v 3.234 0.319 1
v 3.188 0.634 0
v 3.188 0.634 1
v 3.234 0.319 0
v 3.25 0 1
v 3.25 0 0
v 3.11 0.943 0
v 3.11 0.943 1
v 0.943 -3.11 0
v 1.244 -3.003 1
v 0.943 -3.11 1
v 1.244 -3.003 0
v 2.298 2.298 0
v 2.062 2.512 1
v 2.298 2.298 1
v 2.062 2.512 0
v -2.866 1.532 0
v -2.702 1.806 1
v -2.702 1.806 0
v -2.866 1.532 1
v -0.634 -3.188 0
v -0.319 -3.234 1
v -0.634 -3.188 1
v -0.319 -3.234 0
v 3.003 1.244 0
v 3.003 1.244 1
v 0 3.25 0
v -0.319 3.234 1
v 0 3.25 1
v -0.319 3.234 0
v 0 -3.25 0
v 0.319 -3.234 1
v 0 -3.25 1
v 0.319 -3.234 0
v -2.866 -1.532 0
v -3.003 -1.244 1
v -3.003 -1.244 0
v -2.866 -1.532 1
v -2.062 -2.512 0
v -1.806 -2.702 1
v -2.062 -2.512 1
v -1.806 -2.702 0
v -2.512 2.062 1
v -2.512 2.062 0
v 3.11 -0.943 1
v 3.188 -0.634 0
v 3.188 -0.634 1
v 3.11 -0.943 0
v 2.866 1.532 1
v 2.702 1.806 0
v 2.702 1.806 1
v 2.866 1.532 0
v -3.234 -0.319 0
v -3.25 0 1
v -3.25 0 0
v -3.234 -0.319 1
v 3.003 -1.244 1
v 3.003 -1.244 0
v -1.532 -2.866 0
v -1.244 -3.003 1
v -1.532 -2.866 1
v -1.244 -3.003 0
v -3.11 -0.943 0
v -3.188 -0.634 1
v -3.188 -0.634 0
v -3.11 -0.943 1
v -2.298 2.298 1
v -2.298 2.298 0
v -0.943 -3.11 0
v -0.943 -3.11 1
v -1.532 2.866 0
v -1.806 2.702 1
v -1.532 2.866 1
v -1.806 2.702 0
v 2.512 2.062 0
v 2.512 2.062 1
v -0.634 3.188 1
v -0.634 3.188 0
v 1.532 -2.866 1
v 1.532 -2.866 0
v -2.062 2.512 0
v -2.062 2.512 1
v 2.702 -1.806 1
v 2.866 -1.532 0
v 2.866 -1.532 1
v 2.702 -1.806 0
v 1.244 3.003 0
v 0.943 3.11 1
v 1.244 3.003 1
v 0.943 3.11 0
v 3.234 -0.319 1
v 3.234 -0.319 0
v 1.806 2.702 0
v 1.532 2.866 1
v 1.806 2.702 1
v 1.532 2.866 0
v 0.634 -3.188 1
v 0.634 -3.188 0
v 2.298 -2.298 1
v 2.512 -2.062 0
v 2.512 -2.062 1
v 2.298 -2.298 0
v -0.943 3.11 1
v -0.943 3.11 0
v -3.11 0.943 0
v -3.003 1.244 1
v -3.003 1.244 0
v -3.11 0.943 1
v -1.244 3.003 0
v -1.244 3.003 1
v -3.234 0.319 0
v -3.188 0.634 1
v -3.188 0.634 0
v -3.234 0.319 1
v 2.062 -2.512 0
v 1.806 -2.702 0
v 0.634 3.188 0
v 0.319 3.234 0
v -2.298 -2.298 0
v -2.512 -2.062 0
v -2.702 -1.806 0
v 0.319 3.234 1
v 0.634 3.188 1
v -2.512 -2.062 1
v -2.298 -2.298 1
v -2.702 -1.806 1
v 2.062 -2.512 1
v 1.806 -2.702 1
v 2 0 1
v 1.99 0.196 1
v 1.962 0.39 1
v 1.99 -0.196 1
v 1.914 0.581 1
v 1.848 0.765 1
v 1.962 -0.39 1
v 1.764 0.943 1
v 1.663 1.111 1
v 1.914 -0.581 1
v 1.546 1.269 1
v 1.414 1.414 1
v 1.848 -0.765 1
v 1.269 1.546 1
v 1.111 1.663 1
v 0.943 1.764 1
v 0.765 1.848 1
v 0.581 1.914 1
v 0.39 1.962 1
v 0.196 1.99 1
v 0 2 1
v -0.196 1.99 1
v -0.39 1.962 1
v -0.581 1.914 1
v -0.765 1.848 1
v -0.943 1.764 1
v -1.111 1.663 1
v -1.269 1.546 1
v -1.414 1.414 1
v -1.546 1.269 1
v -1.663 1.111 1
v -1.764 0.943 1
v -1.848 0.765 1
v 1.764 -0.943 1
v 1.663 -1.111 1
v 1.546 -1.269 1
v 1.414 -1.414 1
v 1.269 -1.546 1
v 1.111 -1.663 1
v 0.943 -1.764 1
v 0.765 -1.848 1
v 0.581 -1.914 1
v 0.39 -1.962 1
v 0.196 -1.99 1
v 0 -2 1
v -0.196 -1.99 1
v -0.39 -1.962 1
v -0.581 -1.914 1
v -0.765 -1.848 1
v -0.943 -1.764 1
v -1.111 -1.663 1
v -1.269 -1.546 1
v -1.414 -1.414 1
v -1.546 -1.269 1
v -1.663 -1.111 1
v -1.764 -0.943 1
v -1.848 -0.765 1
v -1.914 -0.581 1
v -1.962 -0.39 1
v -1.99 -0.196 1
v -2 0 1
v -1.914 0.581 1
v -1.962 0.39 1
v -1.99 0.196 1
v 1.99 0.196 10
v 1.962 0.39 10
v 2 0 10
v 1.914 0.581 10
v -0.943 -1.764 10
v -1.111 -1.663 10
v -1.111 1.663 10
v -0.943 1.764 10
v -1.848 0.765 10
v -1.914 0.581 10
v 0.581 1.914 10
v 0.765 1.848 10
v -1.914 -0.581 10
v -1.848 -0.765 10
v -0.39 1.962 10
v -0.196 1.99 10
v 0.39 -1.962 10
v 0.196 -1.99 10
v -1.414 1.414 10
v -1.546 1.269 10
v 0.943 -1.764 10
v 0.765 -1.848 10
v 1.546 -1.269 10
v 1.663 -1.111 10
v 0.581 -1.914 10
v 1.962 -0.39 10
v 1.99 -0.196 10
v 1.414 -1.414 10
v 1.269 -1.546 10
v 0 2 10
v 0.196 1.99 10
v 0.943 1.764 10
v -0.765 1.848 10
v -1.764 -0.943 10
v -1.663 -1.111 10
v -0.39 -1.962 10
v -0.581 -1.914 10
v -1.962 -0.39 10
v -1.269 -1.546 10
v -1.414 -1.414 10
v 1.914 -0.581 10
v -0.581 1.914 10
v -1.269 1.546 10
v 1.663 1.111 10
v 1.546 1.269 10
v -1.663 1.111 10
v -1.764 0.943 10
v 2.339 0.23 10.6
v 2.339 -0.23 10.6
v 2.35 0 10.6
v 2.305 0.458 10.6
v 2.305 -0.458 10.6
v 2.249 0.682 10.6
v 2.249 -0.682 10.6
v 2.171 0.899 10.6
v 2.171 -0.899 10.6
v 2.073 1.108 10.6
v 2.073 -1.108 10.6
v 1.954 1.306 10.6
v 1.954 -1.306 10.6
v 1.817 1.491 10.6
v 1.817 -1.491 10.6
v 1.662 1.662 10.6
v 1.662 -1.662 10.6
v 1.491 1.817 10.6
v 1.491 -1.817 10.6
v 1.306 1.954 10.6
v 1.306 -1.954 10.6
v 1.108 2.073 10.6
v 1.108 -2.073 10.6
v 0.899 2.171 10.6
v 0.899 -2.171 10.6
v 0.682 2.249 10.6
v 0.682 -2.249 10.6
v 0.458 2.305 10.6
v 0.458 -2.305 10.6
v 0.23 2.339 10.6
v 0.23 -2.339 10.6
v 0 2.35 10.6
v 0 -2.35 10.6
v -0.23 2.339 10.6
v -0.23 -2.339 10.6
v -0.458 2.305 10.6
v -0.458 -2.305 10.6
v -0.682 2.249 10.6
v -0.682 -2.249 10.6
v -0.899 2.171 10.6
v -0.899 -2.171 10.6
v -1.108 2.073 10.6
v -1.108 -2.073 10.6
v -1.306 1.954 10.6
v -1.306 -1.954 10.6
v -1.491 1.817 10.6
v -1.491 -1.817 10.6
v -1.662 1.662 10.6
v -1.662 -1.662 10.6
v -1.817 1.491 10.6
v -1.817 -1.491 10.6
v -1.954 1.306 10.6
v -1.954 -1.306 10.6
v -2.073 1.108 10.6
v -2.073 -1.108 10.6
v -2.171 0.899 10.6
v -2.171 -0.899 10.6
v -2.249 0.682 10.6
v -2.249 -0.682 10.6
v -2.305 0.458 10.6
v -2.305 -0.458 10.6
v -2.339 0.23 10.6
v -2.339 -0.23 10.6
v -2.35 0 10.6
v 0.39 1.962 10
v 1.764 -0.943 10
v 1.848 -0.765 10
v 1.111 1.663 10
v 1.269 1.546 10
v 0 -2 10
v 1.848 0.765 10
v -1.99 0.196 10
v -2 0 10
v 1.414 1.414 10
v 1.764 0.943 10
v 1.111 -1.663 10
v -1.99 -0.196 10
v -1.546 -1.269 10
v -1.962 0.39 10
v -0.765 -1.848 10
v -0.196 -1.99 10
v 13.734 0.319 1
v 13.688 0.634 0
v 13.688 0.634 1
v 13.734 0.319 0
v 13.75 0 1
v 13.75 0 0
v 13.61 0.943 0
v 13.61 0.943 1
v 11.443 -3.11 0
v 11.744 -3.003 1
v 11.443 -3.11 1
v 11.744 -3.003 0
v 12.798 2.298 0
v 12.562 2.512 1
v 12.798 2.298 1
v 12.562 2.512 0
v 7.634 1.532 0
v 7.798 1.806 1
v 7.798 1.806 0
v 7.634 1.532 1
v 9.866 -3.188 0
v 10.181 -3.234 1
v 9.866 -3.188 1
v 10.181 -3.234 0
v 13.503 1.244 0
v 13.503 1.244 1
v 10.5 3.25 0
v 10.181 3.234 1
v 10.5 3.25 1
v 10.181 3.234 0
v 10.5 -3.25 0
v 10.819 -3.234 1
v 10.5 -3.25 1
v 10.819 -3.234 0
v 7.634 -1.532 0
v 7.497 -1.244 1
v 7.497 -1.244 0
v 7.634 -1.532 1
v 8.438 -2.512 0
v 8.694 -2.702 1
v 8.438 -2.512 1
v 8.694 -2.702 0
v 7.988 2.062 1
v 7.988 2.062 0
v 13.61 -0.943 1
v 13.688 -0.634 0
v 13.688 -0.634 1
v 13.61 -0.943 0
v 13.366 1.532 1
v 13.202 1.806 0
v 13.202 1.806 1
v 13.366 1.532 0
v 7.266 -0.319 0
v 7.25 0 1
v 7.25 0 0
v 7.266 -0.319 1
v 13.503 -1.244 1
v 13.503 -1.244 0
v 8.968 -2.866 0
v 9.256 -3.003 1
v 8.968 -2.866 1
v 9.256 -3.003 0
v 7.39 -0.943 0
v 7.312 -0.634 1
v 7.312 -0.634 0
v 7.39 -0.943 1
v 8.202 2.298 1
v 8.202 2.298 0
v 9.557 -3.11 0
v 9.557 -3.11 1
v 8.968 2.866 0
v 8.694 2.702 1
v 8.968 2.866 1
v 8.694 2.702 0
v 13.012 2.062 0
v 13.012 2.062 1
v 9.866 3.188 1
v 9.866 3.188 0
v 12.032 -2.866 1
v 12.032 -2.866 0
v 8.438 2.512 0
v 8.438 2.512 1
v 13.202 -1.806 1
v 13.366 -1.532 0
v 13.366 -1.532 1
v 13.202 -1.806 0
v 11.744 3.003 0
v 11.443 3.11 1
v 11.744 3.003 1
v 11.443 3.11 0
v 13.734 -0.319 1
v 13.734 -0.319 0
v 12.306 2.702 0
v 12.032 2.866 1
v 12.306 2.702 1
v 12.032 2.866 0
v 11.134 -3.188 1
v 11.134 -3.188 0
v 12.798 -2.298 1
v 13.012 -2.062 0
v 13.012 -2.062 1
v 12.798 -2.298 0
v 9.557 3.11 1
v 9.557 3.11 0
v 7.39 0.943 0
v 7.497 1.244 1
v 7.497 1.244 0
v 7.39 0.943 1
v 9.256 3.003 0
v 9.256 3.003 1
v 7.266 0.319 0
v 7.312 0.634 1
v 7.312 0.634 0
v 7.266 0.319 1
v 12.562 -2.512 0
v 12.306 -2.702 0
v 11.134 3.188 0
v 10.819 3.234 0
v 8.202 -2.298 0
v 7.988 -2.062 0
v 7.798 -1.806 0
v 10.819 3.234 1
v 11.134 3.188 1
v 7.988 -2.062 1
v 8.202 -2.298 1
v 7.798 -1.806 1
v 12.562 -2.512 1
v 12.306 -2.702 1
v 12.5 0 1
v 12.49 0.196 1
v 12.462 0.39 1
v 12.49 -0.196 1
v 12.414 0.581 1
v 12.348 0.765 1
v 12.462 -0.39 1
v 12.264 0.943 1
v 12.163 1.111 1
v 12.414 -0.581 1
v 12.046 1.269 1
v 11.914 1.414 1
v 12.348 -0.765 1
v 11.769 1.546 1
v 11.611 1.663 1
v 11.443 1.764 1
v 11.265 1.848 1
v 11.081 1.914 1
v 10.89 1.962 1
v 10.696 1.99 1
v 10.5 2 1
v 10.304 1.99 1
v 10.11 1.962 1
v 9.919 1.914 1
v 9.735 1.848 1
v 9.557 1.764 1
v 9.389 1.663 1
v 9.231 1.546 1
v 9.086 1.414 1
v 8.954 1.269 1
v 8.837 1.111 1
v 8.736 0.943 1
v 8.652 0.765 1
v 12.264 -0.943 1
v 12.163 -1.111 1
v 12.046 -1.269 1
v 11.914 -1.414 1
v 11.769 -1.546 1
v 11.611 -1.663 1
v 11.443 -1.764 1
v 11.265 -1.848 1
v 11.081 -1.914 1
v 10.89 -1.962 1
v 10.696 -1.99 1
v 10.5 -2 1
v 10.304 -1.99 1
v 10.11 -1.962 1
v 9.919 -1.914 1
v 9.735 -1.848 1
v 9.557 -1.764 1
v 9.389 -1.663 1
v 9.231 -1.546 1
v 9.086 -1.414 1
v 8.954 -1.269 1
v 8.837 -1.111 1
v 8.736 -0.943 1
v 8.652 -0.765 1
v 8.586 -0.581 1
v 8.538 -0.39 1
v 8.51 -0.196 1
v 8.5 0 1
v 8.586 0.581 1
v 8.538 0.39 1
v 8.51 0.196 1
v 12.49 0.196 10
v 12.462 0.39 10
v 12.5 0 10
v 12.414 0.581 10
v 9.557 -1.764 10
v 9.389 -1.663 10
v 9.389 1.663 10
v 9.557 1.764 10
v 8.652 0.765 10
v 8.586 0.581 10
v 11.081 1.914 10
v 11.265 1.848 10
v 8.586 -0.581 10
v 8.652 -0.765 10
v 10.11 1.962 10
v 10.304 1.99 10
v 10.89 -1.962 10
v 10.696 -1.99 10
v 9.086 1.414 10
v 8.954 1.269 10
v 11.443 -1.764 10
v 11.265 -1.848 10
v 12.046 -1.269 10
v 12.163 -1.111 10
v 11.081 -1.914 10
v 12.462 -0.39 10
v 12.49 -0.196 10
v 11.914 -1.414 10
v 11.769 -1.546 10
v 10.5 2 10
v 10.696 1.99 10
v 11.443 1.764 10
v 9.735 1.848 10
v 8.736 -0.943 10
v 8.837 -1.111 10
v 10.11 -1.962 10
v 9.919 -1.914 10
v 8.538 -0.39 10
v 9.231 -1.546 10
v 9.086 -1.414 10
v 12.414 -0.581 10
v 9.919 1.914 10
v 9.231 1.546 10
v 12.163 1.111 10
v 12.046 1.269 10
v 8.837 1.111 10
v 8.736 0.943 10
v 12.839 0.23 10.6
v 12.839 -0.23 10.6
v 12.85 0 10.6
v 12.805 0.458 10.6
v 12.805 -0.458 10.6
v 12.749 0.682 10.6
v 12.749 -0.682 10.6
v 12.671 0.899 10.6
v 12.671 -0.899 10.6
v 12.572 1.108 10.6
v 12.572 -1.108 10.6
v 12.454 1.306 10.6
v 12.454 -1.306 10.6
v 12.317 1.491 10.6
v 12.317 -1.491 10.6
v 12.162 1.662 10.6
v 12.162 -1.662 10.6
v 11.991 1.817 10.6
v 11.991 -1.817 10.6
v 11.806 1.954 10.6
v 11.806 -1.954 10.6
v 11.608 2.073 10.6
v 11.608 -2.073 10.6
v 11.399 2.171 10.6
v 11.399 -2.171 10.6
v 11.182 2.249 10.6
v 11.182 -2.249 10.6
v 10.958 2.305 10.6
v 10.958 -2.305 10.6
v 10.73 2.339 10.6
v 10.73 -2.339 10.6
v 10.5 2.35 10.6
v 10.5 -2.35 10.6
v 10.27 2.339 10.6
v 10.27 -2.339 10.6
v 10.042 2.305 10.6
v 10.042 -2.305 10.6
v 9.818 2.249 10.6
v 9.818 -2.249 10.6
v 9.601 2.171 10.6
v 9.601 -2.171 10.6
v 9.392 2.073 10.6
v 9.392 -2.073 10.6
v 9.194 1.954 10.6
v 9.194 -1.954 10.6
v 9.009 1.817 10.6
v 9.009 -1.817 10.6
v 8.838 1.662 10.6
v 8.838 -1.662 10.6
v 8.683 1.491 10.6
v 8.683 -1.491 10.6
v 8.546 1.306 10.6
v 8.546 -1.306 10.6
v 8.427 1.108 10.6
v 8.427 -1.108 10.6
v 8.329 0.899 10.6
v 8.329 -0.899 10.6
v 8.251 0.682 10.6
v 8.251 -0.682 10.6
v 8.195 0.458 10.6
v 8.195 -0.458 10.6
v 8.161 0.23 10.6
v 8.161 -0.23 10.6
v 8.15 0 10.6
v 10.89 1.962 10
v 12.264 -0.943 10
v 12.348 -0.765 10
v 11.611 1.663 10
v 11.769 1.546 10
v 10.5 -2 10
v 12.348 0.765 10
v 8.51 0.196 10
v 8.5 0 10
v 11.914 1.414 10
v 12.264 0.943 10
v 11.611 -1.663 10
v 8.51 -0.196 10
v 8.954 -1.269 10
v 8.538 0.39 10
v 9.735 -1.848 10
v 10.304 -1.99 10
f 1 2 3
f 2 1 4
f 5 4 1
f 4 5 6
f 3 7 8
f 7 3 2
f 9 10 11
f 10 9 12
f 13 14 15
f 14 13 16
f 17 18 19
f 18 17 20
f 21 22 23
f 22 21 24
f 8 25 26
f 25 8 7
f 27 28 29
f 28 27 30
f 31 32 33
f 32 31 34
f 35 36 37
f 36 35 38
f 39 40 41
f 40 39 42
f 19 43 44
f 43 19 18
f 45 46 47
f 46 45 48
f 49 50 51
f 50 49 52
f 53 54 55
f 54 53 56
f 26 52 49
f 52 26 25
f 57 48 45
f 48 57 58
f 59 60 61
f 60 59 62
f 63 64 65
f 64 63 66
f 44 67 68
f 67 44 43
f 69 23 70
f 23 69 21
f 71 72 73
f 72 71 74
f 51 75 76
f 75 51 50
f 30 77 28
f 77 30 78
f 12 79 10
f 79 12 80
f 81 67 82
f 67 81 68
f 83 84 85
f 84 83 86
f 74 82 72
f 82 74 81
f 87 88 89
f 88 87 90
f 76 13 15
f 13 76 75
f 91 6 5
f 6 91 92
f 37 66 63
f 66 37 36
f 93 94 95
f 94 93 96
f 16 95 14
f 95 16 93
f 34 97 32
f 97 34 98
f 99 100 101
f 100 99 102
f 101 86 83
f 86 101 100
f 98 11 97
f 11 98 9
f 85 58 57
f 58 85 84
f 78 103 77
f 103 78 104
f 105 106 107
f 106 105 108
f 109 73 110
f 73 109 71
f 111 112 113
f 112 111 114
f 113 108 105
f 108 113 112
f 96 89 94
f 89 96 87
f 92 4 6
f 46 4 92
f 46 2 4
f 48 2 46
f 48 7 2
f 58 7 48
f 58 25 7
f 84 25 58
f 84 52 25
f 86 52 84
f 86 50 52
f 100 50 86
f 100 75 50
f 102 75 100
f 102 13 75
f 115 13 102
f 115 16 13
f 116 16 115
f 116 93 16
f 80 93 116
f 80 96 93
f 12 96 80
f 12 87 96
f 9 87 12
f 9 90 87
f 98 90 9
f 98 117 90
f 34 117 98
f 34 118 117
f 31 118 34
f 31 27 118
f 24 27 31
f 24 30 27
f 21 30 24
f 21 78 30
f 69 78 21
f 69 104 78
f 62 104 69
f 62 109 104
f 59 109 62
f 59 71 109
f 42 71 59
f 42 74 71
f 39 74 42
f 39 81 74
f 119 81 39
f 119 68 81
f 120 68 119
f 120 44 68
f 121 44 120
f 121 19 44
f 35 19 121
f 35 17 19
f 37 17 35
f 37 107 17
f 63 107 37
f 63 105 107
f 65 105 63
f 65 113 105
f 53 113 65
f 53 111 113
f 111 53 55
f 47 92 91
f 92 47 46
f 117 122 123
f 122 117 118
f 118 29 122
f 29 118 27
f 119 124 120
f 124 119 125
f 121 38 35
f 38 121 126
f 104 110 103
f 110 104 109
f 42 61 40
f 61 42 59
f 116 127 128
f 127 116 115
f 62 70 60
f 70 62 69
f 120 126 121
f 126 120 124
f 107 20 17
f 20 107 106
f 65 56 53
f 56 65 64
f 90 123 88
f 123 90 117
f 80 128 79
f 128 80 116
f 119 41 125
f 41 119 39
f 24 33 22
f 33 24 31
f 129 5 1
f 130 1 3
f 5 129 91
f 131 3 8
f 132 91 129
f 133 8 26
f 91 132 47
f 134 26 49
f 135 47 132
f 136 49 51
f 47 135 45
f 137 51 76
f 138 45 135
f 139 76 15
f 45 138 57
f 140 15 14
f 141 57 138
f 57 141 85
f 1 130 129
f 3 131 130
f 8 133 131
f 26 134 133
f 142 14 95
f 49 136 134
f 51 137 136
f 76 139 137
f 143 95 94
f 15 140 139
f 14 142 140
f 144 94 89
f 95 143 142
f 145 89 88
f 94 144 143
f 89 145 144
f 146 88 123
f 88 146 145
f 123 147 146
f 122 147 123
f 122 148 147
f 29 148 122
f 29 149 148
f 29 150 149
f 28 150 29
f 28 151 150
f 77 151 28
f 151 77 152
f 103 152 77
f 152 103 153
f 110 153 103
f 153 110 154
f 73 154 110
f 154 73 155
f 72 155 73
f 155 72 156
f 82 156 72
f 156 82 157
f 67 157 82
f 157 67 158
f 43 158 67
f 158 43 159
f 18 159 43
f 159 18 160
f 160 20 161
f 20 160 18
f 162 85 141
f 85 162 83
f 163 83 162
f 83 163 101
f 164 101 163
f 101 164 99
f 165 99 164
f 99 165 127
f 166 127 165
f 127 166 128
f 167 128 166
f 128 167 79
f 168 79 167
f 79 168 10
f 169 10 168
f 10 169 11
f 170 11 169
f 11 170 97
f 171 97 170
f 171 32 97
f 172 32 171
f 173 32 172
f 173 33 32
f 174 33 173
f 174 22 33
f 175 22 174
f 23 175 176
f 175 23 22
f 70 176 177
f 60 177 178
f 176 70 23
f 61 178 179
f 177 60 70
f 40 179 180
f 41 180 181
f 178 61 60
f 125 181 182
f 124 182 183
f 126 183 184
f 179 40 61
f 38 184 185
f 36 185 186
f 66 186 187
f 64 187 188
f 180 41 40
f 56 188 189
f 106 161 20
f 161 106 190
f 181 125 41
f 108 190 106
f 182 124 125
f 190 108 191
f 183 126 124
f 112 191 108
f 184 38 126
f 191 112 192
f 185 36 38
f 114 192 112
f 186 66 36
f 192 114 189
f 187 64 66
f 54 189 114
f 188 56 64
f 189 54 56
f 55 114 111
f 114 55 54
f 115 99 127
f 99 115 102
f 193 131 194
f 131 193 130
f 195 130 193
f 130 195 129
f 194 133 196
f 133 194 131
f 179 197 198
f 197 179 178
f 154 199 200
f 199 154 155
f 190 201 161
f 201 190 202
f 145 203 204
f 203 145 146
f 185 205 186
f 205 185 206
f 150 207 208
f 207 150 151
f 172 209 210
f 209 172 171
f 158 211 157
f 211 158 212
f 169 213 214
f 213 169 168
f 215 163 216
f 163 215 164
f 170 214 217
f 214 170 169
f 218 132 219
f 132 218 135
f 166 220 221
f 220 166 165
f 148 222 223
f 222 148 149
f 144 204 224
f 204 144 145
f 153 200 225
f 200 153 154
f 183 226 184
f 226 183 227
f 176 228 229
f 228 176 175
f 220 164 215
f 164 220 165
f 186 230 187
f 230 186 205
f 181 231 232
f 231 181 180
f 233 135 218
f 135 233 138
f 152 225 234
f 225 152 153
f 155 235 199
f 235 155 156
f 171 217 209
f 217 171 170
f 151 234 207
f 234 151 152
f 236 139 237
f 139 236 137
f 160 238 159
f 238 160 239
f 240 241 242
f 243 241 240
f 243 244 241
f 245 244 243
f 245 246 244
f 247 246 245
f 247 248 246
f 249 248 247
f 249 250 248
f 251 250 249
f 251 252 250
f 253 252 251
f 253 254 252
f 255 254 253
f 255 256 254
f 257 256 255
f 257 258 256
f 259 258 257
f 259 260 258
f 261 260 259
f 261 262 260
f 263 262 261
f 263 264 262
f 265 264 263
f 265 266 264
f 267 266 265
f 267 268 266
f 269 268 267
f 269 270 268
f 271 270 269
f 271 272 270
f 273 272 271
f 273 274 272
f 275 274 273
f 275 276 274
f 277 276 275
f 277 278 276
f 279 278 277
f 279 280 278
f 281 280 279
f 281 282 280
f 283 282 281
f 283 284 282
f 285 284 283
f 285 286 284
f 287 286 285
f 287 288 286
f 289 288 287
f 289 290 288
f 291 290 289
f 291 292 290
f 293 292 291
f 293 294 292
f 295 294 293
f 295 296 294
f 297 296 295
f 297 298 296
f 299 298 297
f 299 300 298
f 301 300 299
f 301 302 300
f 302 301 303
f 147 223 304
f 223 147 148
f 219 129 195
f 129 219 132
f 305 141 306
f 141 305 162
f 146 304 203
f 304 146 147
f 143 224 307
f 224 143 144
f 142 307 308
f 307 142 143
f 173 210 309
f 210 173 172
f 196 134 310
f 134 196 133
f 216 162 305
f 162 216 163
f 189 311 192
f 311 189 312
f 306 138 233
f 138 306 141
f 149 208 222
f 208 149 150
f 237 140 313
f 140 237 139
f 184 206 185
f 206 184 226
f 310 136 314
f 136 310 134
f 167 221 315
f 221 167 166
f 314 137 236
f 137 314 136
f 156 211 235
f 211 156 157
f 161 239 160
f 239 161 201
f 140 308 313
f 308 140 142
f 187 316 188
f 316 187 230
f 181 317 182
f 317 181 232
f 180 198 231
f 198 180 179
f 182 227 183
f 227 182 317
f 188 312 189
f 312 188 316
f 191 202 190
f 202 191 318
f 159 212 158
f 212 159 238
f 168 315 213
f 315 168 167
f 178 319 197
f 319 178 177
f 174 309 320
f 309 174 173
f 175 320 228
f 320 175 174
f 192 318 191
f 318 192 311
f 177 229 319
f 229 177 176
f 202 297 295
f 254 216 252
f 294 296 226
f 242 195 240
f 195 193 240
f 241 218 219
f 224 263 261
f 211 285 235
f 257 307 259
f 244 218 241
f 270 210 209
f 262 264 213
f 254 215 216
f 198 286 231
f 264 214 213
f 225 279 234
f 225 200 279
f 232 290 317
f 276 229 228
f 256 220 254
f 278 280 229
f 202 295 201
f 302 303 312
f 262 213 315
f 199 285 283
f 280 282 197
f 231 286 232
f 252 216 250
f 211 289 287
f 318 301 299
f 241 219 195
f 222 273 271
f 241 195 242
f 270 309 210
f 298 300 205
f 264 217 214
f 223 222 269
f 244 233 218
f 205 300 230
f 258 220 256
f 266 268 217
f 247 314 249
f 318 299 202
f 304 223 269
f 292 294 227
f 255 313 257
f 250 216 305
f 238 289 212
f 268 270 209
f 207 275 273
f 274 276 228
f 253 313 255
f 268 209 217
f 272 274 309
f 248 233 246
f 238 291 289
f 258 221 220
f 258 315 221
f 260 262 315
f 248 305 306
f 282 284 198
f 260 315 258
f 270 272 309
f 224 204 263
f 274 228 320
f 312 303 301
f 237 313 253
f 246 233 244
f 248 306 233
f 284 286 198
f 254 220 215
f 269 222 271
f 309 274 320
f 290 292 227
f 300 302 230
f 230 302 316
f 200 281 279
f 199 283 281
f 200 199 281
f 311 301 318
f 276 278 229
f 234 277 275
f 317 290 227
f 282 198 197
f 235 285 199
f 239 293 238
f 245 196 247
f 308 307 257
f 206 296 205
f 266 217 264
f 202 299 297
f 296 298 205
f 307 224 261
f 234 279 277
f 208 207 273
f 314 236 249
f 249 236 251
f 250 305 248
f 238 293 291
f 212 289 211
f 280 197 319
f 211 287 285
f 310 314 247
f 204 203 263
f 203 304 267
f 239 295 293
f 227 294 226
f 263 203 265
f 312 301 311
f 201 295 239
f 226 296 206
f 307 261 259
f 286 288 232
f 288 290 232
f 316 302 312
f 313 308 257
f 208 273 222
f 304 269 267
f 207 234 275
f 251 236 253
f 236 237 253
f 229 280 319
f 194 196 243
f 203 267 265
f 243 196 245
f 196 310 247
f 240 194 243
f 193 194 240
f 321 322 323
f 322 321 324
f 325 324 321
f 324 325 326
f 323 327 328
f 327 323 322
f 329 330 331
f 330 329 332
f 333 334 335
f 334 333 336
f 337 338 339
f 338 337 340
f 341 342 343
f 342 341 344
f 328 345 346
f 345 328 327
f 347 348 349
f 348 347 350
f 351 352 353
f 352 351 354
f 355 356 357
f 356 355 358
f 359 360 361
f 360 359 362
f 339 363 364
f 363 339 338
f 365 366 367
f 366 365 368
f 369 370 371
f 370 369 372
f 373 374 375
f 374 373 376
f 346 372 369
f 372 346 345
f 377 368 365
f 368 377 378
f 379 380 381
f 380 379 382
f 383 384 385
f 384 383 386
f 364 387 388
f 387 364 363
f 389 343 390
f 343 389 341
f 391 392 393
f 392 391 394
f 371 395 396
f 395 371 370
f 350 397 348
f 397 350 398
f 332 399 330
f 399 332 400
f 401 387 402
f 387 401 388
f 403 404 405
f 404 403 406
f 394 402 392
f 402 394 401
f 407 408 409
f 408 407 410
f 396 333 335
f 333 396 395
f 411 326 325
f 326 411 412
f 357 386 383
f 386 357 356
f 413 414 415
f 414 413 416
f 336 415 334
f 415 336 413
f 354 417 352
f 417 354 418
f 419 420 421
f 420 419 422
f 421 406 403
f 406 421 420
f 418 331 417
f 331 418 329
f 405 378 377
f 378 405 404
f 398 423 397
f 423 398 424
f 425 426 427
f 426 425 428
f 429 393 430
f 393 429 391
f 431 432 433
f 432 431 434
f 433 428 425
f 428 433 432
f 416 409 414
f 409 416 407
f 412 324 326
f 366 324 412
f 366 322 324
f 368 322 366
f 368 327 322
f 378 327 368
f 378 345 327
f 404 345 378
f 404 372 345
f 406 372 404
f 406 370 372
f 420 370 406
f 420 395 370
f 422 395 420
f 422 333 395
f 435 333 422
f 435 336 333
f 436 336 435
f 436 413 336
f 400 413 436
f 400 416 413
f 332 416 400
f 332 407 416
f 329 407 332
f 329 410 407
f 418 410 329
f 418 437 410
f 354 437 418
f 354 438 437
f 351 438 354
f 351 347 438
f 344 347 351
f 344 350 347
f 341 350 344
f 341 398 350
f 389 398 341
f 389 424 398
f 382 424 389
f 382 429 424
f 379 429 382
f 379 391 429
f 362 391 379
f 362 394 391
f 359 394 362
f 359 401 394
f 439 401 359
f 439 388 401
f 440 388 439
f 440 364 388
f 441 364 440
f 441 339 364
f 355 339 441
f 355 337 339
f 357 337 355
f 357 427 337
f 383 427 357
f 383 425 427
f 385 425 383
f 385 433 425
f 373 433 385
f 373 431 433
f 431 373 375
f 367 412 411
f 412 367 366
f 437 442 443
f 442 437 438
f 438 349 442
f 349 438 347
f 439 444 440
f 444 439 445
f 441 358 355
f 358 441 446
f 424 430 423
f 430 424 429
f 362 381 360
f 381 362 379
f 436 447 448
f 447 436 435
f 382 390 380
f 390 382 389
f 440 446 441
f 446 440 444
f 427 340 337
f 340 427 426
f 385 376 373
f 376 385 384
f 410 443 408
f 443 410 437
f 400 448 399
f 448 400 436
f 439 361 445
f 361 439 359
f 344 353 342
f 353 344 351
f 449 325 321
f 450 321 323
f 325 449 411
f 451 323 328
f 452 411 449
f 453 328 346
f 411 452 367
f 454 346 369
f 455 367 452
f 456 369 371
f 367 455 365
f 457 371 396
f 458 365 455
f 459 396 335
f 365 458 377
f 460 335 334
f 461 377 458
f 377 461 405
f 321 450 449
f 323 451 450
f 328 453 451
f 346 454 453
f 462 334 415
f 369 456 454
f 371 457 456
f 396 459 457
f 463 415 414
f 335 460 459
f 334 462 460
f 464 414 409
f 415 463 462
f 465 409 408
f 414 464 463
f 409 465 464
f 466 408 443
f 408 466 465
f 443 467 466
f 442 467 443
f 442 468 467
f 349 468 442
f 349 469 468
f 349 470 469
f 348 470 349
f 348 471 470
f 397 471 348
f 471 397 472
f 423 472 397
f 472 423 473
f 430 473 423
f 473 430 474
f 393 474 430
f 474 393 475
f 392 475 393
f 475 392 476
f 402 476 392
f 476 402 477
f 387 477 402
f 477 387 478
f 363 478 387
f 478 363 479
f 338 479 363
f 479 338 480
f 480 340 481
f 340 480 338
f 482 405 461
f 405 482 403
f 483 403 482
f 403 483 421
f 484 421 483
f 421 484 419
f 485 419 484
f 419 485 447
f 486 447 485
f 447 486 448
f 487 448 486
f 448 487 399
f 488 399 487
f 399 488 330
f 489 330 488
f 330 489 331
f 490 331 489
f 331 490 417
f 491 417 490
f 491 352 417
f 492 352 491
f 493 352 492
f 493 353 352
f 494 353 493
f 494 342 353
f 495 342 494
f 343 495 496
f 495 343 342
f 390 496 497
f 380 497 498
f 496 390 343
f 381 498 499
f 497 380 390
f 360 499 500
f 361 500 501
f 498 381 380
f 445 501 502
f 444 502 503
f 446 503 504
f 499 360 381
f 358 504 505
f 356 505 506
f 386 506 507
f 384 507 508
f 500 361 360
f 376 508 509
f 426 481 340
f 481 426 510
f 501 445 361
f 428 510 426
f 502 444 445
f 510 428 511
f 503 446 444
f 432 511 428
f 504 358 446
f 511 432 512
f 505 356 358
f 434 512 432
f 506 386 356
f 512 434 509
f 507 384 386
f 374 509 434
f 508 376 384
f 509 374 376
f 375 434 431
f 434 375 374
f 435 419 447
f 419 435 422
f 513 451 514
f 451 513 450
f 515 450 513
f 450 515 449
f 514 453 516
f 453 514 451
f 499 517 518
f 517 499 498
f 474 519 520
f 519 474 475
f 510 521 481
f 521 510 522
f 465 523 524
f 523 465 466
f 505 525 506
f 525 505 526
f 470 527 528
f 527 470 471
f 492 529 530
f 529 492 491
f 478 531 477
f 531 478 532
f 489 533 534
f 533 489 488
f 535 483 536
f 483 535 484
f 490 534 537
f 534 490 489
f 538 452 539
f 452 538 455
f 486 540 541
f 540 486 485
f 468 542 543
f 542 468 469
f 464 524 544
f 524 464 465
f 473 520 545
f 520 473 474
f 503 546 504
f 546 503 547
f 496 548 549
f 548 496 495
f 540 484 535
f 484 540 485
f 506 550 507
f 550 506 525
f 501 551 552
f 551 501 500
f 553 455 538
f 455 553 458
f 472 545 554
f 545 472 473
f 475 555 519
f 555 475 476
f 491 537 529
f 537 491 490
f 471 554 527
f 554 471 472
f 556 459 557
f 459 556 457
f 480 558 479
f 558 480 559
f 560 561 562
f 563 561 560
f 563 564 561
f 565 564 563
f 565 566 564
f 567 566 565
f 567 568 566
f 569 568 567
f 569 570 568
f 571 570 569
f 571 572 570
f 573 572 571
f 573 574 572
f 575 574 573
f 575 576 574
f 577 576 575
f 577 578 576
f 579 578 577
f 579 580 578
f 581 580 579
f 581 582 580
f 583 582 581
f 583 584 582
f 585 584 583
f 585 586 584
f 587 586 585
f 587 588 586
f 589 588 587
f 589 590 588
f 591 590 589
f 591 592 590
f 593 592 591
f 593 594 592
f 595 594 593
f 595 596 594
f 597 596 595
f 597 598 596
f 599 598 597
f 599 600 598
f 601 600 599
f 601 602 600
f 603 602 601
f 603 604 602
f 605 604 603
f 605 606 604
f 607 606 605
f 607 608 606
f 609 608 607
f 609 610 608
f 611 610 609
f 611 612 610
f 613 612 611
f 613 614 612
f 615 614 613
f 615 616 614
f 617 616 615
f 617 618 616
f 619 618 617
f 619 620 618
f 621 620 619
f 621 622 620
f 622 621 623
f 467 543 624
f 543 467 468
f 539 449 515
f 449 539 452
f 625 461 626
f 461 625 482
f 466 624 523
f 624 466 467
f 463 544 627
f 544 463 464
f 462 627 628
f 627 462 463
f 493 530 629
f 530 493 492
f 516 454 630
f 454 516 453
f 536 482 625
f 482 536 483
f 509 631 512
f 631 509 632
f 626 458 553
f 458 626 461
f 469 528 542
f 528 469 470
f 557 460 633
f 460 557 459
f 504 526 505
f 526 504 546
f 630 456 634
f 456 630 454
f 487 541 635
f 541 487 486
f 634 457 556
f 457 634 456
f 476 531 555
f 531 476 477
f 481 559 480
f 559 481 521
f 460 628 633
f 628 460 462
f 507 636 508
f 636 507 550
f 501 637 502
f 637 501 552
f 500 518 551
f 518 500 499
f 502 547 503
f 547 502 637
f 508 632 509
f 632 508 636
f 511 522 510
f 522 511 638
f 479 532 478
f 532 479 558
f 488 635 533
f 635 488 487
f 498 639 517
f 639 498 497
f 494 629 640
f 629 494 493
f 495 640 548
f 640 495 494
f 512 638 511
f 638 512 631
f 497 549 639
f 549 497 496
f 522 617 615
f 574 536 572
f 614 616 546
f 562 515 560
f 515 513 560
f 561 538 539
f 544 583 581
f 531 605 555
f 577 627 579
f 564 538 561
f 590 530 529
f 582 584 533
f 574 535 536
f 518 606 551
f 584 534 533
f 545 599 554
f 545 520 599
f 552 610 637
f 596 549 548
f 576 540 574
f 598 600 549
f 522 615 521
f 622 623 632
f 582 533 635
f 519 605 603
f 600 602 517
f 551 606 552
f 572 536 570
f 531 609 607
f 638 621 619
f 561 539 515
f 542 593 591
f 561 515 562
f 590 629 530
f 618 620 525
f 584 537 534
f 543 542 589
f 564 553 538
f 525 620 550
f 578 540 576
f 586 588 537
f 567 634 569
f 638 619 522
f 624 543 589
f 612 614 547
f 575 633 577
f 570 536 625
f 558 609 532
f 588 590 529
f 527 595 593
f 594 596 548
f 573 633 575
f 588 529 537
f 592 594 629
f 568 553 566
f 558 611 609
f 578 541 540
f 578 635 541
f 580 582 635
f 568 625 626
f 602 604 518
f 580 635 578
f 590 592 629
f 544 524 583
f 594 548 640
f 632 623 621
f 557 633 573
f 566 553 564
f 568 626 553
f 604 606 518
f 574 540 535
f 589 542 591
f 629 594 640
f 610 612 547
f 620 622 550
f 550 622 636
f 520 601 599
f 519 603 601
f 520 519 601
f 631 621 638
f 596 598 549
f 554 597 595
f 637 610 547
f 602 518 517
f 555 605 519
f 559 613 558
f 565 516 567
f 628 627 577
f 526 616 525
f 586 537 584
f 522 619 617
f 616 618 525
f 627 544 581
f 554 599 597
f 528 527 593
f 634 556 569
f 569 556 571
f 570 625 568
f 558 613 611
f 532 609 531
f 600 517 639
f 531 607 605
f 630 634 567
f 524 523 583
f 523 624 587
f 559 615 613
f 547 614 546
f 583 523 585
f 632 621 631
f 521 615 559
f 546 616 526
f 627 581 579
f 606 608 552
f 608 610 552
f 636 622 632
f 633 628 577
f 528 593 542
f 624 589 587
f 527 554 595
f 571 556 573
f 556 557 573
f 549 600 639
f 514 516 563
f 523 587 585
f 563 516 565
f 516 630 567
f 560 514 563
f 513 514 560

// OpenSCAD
// =============================================================================
// SupaClock V4 - Button caps (piezas sueltas, TOP-PRESS)
// Rediseño total vs V3: la T era horizontal (side-press por la pared +X);
// V4 la T es VERTICAL con flange arriba y stem descendiendo por dentro del
// case hasta el actuador del switch soldado en la PCB.
//
// === GEOMETRIA DEL SISTEMA ===
//
//   Vista lateral (corte axial vertical por el centro del switch):
//
//          dedo
//            |
//            v
//          ┌──────┐         Ø flange = 6.5, h = 1.0
//          │FLANGE│         (visible sobre la cara superior del faceplate)
//   ═══════┴──────┴═══════  <- cara superior del faceplate (Z = H_total)
//              │            Ø stem = 4.0
//              │            baja atravesando faceplate (1.5) +
//              │            grosor_pared del techo (2.0) +
//              │            aire hasta el actuador del switch.
//              │
//   ══════════════════════  <- cara inferior del techo del top_case (ceiling)
//              │
//              │
//   ─ ─ ─ ─ ─ ─ ─ ─ ─ ─    <- top del actuador (~Z_switch_top)
//                              deja 0.3 mm pretravel (stem NO toca en reposo)
//
// === RETENCION ===
//   Lip cónico en el extremo INFERIOR del stem (Ø4.7 vs hole Ø4.5).
//   Al ensamblar: colocar el cap desde arriba, empujar el stem por el hueco
//   del faceplate y luego por el hueco del techo. El lip pasa por interferencia
//   y queda debajo del faceplate, evitando que el cap salga al soltarse la
//   presión desde arriba. Al desmontar el faceplate, los caps pueden caerse
//   (mismo comportamiento V3).
//
// === IMPRESION ===
//   Orientar con FLANGE hacia abajo (cara grande contra la cama de impresion,
//   sin soportes). El stem crece hacia arriba. PLA o PETG. El file duplica
//   automaticamente los 2 caps (SW1 SELECT + SW2 NEXT, identicos).
// =============================================================================

$fn = 64;
eps = 0.01;

// --- DEBE COINCIDIR CON TOP CASE / FACEPLATE V4 ---
btn_hole_d_top    = 4.5;   // Ø del agujero pasante en techo y faceplate
grosor_pared      = 2.0;   // techo del top_case (aire por dentro del case)
faceplate_slab    = 1.5;   // grosor del faceplate

// --- STACK PARA CALCULAR stem_h ---
// Z_face_underside  = H_total = 18.0        (cara inferior del faceplate)
// Z_switch_top      = altura_total_bottom + pcb_thickness + actuator_h_est
//                   = 3.0 + 1.6 + 5.0 = 9.6 (top del actuador estimado, MEDIR)
// Z_stem_reach      = Z_face_underside - Z_switch_top - pretravel
//                   = 18.0 - 9.6 - 0.3 = 8.1
// El flange no cuenta para el reach porque queda arriba de la cara sup del face.
// stem_h = Z_stem_reach + faceplate_slab   (el stem atraviesa el slab)
//        = 8.1 + 1.5 = 9.6
// (Alternativa: dejar stem_h = 8.1 y contar solo el aire; con esta version
// el stem "empieza" bajo el faceplate y el flange descansa sobre la cara
// superior. Usamos la version LARGA para simplificar el ensamble.)
//
// AJUSTE CRITICO: si al probar el switch queda pressed permanente, bajar
// stem_h en pasos de 0.3 mm hasta liberar. Si no llega al actuador, subir.

flange_d          = 6.5;
flange_h          = 1.0;   // V3 tenia 1.5, bajado para perfil mas discreto
stem_d            = 4.0;   // V3 tenia 3.5, subido para rigidez axial
stem_h            = 9.6;   // MEDIR — placeholder segun stack estimado

// Retencion (lip cónico en el extremo inferior del stem)
retention_lip_h   = 0.6;
retention_lip_d   = 4.7;   // 0.2 mm interferencia contra btn_hole_d_top=4.5

// =============================================================================

module button_cap() {
    union() {
        // Flange superior (queda encima de la cara sup del faceplate)
        cylinder(h = flange_h, d = flange_d);

        // Stem principal (crece hacia -Z desde el flange, pero como imprimimos
        // con flange abajo, en la geometria el flange esta en Z=0 y el stem
        // crece hacia +Z. En el ensamble se voltea).
        translate([0, 0, flange_h - eps])
            cylinder(h = stem_h + eps, d = stem_d);

        // Lip de retencion cónico en el EXTREMO SUPERIOR de la geometria
        // (que sera el extremo INFERIOR una vez volteado al ensamblar).
        if (retention_lip_h > 0) {
            translate([0, 0, flange_h + stem_h - retention_lip_h])
                cylinder(h = retention_lip_h,
                         d1 = stem_d,
                         d2 = retention_lip_d);
        }
    }
}

// Imprimir 2 caps lado a lado (SW1 y SW2 son identicos)
button_cap();
translate([flange_d + 4, 0, 0]) button_cap();
